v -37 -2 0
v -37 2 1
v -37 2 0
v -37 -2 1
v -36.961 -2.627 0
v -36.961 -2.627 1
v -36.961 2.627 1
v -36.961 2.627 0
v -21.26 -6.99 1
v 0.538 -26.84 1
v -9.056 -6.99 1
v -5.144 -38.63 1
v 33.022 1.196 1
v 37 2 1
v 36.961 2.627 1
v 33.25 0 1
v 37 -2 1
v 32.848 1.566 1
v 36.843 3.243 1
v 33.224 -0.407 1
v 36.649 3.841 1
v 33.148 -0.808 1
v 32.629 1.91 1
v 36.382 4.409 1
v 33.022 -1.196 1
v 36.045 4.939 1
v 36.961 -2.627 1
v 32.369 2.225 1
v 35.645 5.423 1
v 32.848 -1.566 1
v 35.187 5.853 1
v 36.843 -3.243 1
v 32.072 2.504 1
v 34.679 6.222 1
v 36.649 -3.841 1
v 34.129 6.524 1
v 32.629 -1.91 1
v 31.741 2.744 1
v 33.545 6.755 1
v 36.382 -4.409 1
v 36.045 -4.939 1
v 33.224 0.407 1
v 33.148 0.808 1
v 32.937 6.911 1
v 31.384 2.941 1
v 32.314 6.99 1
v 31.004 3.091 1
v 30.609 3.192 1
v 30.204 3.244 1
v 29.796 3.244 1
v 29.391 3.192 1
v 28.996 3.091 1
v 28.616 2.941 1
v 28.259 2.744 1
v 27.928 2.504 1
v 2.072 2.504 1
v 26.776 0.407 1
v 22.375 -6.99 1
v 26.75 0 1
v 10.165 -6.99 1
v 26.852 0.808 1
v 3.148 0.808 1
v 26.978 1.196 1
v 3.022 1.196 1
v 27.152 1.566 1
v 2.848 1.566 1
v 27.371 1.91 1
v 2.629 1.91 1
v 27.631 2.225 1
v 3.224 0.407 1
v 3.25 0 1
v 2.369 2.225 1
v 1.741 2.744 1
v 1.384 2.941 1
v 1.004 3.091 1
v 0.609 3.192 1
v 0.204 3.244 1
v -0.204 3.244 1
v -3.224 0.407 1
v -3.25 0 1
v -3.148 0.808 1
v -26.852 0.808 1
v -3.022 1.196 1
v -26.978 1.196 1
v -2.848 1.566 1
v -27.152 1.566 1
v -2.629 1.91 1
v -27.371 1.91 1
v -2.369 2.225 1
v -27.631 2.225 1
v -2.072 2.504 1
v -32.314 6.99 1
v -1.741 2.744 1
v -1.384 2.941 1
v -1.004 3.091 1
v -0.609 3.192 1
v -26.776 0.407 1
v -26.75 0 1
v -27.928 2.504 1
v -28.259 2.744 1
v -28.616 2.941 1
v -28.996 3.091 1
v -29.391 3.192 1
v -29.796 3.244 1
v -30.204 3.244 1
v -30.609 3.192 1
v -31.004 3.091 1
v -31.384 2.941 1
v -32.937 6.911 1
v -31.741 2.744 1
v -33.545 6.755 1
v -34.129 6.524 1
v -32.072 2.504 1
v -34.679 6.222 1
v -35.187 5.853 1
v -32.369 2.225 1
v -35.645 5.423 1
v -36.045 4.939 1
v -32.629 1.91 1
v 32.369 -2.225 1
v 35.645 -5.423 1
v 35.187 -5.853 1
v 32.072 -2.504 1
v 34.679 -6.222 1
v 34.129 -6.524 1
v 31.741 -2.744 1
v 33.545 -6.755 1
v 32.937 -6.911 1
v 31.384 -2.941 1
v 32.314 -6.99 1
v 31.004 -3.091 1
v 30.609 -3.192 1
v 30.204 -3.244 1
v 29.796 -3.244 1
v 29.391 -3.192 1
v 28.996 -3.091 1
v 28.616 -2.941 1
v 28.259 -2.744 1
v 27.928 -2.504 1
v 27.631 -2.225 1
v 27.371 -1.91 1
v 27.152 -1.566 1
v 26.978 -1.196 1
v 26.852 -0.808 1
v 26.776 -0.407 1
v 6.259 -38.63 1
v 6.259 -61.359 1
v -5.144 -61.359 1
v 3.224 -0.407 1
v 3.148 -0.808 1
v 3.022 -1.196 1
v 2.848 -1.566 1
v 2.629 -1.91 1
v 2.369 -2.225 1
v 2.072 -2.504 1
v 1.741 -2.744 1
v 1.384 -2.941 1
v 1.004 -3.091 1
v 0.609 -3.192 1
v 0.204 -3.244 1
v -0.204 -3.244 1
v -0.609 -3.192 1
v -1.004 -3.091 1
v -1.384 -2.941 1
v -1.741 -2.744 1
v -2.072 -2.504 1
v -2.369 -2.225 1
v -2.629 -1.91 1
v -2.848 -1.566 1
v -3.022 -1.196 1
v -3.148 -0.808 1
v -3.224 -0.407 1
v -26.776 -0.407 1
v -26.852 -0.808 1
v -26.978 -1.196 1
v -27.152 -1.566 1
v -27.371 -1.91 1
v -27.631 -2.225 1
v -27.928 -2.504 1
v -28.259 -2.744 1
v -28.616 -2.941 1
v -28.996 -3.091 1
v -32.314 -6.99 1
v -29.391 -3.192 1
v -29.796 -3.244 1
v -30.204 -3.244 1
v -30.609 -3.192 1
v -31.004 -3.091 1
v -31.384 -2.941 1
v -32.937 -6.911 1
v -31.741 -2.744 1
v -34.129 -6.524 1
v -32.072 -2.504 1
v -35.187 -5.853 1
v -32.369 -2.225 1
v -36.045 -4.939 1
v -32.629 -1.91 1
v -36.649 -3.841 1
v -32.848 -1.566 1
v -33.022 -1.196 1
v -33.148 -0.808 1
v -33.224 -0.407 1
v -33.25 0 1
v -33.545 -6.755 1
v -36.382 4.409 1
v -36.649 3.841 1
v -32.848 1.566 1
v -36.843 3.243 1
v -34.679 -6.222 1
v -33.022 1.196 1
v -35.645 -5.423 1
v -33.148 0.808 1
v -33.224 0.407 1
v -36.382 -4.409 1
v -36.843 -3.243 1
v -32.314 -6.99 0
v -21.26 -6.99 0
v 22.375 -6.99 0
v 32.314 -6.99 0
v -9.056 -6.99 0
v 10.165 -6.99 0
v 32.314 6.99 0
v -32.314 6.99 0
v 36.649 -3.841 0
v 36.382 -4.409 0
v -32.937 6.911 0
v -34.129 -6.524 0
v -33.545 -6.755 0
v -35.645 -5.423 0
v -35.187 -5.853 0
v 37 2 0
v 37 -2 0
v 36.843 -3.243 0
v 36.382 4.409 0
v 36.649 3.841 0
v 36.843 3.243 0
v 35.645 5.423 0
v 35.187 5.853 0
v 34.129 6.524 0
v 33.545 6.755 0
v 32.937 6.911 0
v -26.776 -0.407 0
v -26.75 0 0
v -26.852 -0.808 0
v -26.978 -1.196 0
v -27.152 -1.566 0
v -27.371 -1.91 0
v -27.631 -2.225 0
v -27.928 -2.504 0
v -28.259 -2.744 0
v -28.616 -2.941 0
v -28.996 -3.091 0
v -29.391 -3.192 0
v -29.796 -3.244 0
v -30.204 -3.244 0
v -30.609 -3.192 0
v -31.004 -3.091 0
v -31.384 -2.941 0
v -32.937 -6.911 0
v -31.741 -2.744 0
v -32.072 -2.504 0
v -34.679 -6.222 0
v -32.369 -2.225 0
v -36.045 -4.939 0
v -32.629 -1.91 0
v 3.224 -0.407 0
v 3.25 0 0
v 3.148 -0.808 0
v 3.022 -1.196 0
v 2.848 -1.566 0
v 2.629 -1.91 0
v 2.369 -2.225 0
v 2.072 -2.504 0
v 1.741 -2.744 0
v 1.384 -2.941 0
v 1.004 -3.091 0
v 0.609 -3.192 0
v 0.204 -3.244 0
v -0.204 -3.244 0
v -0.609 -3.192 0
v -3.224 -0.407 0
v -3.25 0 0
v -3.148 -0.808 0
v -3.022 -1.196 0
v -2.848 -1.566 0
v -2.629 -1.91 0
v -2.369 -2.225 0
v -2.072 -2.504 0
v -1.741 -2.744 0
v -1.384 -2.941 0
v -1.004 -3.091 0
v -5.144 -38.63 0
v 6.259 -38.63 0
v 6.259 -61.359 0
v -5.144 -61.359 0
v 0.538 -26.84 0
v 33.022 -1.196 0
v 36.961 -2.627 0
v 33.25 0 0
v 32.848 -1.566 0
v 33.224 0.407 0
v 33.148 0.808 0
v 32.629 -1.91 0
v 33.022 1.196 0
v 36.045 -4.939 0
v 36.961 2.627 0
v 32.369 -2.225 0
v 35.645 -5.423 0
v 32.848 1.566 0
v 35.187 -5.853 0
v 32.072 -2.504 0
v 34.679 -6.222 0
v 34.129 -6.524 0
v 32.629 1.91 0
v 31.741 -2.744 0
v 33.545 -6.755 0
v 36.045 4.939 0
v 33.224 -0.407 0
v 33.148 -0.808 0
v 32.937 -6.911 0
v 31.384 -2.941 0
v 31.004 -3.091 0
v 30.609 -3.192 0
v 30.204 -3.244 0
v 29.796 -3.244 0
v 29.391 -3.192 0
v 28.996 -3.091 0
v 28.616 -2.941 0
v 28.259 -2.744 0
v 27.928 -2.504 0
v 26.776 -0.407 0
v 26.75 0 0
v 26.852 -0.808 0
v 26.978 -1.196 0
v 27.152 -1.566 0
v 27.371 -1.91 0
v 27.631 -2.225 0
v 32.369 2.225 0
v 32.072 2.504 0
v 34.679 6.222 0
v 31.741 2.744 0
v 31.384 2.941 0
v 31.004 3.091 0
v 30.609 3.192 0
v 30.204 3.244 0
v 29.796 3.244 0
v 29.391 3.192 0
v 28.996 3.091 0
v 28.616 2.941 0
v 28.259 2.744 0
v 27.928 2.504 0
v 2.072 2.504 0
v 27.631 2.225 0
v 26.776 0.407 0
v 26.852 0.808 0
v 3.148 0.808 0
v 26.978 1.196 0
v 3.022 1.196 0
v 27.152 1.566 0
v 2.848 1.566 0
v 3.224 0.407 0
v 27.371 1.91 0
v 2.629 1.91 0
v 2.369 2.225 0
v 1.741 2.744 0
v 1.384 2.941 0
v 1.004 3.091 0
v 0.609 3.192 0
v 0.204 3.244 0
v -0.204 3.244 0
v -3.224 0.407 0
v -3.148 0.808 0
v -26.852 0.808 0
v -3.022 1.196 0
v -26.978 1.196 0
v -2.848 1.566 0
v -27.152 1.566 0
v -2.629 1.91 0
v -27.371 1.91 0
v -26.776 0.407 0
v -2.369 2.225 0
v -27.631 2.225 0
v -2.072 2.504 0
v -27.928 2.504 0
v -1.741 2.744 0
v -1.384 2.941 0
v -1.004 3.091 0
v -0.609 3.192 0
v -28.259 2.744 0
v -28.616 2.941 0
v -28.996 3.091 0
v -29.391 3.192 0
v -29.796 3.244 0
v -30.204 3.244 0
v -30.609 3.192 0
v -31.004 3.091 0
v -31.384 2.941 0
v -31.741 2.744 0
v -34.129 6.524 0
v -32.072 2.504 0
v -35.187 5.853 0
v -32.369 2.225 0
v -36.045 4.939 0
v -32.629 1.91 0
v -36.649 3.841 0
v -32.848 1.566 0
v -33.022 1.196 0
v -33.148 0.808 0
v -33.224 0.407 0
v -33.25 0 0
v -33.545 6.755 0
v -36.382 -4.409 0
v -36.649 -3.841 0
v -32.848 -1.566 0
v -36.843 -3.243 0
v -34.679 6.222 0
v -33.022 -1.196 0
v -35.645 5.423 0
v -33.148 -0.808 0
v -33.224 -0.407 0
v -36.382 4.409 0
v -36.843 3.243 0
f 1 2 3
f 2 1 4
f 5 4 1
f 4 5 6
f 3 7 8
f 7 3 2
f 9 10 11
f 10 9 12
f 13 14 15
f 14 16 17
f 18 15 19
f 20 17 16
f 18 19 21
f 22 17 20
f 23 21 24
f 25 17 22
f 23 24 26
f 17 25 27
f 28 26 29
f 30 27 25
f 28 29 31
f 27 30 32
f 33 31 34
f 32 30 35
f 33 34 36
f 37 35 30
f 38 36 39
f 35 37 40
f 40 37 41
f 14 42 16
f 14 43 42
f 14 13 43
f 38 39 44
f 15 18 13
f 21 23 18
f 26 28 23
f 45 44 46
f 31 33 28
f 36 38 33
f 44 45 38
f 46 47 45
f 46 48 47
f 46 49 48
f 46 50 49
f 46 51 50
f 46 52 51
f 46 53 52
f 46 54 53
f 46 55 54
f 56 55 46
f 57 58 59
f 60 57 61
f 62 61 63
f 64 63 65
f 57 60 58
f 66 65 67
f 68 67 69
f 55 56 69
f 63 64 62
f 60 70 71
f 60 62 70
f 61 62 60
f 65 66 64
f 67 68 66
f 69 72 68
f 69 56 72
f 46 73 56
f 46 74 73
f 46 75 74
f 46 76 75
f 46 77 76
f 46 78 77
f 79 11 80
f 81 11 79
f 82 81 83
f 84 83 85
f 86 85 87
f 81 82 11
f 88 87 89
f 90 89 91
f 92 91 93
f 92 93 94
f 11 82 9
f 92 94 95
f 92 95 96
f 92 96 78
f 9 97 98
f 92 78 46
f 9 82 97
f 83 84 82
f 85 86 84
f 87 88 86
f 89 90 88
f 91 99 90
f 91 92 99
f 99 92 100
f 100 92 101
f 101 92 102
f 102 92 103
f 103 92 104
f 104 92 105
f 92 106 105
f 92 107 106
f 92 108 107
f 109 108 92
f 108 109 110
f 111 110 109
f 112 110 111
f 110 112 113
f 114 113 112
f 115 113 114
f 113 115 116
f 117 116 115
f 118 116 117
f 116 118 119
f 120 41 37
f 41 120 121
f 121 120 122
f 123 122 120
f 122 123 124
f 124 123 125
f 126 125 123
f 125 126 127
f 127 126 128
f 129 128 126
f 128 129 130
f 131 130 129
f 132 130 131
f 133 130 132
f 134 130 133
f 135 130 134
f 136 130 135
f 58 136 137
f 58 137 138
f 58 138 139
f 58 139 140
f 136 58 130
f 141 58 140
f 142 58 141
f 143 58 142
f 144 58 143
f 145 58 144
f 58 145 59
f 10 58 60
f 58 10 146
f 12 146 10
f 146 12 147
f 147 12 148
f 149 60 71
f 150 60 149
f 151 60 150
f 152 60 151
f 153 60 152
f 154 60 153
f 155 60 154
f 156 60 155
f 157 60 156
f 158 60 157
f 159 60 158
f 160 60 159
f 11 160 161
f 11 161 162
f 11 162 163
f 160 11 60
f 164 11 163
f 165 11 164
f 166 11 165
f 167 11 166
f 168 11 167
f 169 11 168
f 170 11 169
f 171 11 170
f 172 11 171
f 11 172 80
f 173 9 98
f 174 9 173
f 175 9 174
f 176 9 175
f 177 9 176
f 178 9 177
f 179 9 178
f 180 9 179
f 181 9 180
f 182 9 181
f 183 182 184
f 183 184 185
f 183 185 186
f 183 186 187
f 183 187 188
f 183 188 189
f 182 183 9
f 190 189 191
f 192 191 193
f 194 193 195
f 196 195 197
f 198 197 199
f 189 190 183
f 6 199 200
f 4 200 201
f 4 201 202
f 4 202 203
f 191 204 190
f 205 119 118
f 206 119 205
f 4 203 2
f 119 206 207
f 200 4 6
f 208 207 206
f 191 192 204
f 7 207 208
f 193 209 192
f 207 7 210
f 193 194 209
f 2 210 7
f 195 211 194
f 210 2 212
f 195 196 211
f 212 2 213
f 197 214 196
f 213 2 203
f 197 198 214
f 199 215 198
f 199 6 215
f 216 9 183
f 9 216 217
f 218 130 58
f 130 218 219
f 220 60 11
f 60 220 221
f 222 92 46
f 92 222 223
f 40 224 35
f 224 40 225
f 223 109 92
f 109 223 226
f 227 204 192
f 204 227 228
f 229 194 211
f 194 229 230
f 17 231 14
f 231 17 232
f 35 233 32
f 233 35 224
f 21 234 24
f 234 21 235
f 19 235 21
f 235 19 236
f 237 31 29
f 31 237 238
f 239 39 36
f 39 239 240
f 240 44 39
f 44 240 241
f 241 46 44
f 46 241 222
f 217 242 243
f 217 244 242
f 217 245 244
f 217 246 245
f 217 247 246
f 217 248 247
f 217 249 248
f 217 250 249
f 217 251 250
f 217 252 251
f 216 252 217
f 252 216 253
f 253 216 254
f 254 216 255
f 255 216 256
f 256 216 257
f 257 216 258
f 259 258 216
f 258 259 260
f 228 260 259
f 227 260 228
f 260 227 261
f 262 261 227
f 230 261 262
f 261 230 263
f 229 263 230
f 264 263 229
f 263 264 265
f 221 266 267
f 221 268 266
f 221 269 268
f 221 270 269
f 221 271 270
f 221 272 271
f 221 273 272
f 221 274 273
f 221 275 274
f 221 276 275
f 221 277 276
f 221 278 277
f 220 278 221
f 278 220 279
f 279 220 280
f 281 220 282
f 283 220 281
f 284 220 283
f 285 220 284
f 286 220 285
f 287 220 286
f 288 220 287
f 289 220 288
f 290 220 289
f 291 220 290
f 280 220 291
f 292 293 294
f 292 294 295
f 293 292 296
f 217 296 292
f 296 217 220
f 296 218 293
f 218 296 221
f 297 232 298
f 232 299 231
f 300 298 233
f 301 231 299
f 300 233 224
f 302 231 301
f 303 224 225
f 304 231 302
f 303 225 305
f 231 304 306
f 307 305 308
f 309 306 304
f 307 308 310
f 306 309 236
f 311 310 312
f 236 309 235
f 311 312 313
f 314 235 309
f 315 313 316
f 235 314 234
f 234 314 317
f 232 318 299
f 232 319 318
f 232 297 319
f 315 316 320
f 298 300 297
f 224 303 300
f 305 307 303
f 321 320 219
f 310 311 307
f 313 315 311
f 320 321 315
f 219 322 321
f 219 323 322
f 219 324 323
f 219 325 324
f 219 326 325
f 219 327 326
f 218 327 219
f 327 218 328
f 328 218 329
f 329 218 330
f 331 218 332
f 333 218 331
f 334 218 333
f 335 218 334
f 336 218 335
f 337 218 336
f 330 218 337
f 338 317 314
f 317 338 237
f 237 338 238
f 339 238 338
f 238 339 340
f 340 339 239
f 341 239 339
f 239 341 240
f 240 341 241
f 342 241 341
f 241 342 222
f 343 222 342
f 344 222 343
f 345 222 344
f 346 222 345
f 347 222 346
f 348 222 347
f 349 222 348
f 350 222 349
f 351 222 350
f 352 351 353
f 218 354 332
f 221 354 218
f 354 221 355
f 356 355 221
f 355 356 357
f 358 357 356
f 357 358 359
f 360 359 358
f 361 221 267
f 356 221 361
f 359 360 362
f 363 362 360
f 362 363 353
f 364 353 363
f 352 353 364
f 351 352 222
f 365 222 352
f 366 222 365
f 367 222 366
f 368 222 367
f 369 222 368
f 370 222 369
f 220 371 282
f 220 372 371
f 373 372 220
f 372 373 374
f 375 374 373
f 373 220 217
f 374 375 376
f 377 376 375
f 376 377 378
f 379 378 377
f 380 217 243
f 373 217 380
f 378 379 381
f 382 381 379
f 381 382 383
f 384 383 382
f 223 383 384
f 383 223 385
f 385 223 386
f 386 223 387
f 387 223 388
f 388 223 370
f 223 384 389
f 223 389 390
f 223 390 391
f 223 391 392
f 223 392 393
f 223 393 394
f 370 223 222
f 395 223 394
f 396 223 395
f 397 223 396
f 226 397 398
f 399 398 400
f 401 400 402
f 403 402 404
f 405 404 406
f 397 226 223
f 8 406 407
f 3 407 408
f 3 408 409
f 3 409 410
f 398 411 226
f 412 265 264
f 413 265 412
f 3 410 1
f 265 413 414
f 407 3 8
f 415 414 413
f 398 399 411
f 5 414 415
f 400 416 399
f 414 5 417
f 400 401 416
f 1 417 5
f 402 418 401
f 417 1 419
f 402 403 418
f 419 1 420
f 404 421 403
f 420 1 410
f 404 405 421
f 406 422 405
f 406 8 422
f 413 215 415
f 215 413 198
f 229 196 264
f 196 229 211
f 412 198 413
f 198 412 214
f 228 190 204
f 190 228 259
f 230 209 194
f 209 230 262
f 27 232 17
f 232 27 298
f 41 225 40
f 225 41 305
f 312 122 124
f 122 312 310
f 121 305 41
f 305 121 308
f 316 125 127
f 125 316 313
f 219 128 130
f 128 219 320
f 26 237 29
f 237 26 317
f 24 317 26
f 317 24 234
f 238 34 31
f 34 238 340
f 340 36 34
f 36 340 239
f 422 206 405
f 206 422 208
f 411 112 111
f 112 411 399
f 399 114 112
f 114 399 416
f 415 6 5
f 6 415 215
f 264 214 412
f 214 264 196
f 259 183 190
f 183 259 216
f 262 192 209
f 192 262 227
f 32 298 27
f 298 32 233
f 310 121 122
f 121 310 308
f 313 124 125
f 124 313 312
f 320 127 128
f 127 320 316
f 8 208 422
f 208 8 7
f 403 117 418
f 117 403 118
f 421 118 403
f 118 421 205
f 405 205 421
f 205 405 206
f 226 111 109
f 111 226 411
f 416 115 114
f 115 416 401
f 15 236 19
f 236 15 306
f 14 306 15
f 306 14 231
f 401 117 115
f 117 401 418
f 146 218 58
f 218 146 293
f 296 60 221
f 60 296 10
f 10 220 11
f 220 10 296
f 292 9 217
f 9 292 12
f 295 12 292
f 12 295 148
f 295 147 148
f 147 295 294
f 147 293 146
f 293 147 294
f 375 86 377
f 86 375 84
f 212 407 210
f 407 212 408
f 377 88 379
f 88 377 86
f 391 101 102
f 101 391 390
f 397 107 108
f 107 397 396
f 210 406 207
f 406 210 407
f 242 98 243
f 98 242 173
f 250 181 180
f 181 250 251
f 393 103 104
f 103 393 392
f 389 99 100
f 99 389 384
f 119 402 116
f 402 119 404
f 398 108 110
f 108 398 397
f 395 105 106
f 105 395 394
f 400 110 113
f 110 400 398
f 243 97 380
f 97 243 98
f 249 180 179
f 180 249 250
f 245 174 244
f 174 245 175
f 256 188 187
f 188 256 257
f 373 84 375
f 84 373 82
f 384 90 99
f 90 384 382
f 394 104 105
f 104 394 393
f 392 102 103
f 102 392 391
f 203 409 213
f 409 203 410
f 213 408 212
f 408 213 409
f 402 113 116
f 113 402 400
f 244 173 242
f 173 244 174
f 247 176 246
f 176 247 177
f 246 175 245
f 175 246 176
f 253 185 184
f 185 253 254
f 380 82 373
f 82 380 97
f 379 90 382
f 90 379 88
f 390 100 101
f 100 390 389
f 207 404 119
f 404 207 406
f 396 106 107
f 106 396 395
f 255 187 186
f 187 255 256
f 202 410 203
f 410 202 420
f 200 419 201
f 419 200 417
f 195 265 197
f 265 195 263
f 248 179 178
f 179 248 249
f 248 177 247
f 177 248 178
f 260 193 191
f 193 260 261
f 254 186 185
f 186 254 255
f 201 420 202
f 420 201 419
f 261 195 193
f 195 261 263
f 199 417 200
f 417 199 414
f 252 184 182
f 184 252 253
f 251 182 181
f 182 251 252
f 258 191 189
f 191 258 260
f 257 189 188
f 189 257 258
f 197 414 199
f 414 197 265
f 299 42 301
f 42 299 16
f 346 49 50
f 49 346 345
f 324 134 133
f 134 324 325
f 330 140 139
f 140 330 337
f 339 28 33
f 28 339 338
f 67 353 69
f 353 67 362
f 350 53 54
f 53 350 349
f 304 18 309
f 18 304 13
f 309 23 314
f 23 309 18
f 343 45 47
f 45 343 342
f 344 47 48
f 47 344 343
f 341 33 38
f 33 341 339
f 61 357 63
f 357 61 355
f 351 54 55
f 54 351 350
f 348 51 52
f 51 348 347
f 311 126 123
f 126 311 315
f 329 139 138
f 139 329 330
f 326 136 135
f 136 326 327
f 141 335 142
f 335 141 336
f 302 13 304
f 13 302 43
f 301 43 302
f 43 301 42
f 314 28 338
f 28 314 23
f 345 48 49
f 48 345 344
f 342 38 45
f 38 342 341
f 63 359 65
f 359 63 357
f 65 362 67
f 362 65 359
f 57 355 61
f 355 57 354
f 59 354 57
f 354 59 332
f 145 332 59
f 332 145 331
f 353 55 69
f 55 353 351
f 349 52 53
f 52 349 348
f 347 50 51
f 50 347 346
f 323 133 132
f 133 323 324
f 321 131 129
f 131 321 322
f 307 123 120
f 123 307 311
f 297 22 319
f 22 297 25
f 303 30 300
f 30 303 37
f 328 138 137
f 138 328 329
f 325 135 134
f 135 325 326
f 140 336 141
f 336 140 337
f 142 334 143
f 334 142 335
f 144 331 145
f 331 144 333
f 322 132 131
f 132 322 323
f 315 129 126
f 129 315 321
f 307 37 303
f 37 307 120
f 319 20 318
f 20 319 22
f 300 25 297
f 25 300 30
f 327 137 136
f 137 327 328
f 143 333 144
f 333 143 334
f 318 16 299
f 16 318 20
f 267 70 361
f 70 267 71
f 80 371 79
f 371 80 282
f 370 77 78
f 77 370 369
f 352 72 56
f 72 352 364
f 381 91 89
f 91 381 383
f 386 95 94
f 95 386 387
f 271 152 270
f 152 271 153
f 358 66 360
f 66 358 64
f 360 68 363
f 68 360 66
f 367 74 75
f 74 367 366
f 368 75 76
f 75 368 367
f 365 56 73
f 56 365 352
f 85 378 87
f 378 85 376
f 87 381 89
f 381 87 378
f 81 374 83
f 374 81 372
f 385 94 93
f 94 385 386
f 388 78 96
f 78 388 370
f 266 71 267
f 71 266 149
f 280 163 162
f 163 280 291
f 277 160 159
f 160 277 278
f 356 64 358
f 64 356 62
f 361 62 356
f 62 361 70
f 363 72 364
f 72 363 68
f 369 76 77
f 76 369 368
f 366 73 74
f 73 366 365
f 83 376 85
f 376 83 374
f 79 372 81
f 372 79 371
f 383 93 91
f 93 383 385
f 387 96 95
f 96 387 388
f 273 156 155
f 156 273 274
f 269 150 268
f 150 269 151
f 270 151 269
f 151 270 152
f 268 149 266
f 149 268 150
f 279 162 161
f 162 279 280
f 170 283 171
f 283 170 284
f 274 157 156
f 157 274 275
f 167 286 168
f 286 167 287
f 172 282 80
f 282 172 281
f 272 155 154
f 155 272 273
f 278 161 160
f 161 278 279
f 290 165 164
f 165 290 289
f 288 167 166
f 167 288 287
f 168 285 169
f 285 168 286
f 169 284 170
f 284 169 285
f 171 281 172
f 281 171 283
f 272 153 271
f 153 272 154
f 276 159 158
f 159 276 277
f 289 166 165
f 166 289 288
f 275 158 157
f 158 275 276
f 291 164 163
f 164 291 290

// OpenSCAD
$fn = 50;


difference() {
	union() {
		translate(v = [0, 0, 0]) {
			rotate(a = [0, 0, 0]) {
				hull() {
					translate(v = [-32.0000000000, 2.0000000000, 0]) {
						rotate(a = [0, 0, 0]) {
							translate(v = [0, 0, 0]) {
								rotate(a = [0, 0, 0]) {
									cylinder(h = 1, r = 5);
								}
							}
						}
					}
					translate(v = [32.0000000000, 2.0000000000, 0]) {
						rotate(a = [0, 0, 0]) {
							translate(v = [0, 0, 0]) {
								rotate(a = [0, 0, 0]) {
									cylinder(h = 1, r = 5);
								}
							}
						}
					}
					translate(v = [-32.0000000000, -2.0000000000, 0]) {
						rotate(a = [0, 0, 0]) {
							translate(v = [0, 0, 0]) {
								rotate(a = [0, 0, 0]) {
									cylinder(h = 1, r = 5);
								}
							}
						}
					}
					translate(v = [32.0000000000, -2.0000000000, 0]) {
						rotate(a = [0, 0, 0]) {
							translate(v = [0, 0, 0]) {
								rotate(a = [0, 0, 0]) {
									cylinder(h = 1, r = 5);
								}
							}
						}
					}
				}
			}
		}
		translate(v = [0, -5, 0]) {
			rotate(a = [0, 0, 0]) {
				linear_extrude(height = 1) {
					text(font = "DejaVu Sans Mono:style=Bold", halign = "center", size = 57.0000000000, text = "Y", valign = "top");
				}
			}
		}
	}
	union() {
		translate(v = [-30.0000000000, 0.0000000000, -125.0000000000]) {
			rotate(a = [0, 0, 0]) {
				cylinder(h = 250, r = 3.2500000000);
			}
		}
		translate(v = [30.0000000000, 0.0000000000, -125.0000000000]) {
			rotate(a = [0, 0, 0]) {
				cylinder(h = 250, r = 3.2500000000);
			}
		}
		translate(v = [30.0000000000, 0.0000000000, -125.0000000000]) {
			rotate(a = [0, 0, 0]) {
				cylinder(h = 250, r = 3.2500000000);
			}
		}
		translate(v = [0, 0, -125.0000000000]) {
			rotate(a = [0, 0, 0]) {
				cylinder(h = 250, r = 3.2500000000);
			}
		}
	}
}
